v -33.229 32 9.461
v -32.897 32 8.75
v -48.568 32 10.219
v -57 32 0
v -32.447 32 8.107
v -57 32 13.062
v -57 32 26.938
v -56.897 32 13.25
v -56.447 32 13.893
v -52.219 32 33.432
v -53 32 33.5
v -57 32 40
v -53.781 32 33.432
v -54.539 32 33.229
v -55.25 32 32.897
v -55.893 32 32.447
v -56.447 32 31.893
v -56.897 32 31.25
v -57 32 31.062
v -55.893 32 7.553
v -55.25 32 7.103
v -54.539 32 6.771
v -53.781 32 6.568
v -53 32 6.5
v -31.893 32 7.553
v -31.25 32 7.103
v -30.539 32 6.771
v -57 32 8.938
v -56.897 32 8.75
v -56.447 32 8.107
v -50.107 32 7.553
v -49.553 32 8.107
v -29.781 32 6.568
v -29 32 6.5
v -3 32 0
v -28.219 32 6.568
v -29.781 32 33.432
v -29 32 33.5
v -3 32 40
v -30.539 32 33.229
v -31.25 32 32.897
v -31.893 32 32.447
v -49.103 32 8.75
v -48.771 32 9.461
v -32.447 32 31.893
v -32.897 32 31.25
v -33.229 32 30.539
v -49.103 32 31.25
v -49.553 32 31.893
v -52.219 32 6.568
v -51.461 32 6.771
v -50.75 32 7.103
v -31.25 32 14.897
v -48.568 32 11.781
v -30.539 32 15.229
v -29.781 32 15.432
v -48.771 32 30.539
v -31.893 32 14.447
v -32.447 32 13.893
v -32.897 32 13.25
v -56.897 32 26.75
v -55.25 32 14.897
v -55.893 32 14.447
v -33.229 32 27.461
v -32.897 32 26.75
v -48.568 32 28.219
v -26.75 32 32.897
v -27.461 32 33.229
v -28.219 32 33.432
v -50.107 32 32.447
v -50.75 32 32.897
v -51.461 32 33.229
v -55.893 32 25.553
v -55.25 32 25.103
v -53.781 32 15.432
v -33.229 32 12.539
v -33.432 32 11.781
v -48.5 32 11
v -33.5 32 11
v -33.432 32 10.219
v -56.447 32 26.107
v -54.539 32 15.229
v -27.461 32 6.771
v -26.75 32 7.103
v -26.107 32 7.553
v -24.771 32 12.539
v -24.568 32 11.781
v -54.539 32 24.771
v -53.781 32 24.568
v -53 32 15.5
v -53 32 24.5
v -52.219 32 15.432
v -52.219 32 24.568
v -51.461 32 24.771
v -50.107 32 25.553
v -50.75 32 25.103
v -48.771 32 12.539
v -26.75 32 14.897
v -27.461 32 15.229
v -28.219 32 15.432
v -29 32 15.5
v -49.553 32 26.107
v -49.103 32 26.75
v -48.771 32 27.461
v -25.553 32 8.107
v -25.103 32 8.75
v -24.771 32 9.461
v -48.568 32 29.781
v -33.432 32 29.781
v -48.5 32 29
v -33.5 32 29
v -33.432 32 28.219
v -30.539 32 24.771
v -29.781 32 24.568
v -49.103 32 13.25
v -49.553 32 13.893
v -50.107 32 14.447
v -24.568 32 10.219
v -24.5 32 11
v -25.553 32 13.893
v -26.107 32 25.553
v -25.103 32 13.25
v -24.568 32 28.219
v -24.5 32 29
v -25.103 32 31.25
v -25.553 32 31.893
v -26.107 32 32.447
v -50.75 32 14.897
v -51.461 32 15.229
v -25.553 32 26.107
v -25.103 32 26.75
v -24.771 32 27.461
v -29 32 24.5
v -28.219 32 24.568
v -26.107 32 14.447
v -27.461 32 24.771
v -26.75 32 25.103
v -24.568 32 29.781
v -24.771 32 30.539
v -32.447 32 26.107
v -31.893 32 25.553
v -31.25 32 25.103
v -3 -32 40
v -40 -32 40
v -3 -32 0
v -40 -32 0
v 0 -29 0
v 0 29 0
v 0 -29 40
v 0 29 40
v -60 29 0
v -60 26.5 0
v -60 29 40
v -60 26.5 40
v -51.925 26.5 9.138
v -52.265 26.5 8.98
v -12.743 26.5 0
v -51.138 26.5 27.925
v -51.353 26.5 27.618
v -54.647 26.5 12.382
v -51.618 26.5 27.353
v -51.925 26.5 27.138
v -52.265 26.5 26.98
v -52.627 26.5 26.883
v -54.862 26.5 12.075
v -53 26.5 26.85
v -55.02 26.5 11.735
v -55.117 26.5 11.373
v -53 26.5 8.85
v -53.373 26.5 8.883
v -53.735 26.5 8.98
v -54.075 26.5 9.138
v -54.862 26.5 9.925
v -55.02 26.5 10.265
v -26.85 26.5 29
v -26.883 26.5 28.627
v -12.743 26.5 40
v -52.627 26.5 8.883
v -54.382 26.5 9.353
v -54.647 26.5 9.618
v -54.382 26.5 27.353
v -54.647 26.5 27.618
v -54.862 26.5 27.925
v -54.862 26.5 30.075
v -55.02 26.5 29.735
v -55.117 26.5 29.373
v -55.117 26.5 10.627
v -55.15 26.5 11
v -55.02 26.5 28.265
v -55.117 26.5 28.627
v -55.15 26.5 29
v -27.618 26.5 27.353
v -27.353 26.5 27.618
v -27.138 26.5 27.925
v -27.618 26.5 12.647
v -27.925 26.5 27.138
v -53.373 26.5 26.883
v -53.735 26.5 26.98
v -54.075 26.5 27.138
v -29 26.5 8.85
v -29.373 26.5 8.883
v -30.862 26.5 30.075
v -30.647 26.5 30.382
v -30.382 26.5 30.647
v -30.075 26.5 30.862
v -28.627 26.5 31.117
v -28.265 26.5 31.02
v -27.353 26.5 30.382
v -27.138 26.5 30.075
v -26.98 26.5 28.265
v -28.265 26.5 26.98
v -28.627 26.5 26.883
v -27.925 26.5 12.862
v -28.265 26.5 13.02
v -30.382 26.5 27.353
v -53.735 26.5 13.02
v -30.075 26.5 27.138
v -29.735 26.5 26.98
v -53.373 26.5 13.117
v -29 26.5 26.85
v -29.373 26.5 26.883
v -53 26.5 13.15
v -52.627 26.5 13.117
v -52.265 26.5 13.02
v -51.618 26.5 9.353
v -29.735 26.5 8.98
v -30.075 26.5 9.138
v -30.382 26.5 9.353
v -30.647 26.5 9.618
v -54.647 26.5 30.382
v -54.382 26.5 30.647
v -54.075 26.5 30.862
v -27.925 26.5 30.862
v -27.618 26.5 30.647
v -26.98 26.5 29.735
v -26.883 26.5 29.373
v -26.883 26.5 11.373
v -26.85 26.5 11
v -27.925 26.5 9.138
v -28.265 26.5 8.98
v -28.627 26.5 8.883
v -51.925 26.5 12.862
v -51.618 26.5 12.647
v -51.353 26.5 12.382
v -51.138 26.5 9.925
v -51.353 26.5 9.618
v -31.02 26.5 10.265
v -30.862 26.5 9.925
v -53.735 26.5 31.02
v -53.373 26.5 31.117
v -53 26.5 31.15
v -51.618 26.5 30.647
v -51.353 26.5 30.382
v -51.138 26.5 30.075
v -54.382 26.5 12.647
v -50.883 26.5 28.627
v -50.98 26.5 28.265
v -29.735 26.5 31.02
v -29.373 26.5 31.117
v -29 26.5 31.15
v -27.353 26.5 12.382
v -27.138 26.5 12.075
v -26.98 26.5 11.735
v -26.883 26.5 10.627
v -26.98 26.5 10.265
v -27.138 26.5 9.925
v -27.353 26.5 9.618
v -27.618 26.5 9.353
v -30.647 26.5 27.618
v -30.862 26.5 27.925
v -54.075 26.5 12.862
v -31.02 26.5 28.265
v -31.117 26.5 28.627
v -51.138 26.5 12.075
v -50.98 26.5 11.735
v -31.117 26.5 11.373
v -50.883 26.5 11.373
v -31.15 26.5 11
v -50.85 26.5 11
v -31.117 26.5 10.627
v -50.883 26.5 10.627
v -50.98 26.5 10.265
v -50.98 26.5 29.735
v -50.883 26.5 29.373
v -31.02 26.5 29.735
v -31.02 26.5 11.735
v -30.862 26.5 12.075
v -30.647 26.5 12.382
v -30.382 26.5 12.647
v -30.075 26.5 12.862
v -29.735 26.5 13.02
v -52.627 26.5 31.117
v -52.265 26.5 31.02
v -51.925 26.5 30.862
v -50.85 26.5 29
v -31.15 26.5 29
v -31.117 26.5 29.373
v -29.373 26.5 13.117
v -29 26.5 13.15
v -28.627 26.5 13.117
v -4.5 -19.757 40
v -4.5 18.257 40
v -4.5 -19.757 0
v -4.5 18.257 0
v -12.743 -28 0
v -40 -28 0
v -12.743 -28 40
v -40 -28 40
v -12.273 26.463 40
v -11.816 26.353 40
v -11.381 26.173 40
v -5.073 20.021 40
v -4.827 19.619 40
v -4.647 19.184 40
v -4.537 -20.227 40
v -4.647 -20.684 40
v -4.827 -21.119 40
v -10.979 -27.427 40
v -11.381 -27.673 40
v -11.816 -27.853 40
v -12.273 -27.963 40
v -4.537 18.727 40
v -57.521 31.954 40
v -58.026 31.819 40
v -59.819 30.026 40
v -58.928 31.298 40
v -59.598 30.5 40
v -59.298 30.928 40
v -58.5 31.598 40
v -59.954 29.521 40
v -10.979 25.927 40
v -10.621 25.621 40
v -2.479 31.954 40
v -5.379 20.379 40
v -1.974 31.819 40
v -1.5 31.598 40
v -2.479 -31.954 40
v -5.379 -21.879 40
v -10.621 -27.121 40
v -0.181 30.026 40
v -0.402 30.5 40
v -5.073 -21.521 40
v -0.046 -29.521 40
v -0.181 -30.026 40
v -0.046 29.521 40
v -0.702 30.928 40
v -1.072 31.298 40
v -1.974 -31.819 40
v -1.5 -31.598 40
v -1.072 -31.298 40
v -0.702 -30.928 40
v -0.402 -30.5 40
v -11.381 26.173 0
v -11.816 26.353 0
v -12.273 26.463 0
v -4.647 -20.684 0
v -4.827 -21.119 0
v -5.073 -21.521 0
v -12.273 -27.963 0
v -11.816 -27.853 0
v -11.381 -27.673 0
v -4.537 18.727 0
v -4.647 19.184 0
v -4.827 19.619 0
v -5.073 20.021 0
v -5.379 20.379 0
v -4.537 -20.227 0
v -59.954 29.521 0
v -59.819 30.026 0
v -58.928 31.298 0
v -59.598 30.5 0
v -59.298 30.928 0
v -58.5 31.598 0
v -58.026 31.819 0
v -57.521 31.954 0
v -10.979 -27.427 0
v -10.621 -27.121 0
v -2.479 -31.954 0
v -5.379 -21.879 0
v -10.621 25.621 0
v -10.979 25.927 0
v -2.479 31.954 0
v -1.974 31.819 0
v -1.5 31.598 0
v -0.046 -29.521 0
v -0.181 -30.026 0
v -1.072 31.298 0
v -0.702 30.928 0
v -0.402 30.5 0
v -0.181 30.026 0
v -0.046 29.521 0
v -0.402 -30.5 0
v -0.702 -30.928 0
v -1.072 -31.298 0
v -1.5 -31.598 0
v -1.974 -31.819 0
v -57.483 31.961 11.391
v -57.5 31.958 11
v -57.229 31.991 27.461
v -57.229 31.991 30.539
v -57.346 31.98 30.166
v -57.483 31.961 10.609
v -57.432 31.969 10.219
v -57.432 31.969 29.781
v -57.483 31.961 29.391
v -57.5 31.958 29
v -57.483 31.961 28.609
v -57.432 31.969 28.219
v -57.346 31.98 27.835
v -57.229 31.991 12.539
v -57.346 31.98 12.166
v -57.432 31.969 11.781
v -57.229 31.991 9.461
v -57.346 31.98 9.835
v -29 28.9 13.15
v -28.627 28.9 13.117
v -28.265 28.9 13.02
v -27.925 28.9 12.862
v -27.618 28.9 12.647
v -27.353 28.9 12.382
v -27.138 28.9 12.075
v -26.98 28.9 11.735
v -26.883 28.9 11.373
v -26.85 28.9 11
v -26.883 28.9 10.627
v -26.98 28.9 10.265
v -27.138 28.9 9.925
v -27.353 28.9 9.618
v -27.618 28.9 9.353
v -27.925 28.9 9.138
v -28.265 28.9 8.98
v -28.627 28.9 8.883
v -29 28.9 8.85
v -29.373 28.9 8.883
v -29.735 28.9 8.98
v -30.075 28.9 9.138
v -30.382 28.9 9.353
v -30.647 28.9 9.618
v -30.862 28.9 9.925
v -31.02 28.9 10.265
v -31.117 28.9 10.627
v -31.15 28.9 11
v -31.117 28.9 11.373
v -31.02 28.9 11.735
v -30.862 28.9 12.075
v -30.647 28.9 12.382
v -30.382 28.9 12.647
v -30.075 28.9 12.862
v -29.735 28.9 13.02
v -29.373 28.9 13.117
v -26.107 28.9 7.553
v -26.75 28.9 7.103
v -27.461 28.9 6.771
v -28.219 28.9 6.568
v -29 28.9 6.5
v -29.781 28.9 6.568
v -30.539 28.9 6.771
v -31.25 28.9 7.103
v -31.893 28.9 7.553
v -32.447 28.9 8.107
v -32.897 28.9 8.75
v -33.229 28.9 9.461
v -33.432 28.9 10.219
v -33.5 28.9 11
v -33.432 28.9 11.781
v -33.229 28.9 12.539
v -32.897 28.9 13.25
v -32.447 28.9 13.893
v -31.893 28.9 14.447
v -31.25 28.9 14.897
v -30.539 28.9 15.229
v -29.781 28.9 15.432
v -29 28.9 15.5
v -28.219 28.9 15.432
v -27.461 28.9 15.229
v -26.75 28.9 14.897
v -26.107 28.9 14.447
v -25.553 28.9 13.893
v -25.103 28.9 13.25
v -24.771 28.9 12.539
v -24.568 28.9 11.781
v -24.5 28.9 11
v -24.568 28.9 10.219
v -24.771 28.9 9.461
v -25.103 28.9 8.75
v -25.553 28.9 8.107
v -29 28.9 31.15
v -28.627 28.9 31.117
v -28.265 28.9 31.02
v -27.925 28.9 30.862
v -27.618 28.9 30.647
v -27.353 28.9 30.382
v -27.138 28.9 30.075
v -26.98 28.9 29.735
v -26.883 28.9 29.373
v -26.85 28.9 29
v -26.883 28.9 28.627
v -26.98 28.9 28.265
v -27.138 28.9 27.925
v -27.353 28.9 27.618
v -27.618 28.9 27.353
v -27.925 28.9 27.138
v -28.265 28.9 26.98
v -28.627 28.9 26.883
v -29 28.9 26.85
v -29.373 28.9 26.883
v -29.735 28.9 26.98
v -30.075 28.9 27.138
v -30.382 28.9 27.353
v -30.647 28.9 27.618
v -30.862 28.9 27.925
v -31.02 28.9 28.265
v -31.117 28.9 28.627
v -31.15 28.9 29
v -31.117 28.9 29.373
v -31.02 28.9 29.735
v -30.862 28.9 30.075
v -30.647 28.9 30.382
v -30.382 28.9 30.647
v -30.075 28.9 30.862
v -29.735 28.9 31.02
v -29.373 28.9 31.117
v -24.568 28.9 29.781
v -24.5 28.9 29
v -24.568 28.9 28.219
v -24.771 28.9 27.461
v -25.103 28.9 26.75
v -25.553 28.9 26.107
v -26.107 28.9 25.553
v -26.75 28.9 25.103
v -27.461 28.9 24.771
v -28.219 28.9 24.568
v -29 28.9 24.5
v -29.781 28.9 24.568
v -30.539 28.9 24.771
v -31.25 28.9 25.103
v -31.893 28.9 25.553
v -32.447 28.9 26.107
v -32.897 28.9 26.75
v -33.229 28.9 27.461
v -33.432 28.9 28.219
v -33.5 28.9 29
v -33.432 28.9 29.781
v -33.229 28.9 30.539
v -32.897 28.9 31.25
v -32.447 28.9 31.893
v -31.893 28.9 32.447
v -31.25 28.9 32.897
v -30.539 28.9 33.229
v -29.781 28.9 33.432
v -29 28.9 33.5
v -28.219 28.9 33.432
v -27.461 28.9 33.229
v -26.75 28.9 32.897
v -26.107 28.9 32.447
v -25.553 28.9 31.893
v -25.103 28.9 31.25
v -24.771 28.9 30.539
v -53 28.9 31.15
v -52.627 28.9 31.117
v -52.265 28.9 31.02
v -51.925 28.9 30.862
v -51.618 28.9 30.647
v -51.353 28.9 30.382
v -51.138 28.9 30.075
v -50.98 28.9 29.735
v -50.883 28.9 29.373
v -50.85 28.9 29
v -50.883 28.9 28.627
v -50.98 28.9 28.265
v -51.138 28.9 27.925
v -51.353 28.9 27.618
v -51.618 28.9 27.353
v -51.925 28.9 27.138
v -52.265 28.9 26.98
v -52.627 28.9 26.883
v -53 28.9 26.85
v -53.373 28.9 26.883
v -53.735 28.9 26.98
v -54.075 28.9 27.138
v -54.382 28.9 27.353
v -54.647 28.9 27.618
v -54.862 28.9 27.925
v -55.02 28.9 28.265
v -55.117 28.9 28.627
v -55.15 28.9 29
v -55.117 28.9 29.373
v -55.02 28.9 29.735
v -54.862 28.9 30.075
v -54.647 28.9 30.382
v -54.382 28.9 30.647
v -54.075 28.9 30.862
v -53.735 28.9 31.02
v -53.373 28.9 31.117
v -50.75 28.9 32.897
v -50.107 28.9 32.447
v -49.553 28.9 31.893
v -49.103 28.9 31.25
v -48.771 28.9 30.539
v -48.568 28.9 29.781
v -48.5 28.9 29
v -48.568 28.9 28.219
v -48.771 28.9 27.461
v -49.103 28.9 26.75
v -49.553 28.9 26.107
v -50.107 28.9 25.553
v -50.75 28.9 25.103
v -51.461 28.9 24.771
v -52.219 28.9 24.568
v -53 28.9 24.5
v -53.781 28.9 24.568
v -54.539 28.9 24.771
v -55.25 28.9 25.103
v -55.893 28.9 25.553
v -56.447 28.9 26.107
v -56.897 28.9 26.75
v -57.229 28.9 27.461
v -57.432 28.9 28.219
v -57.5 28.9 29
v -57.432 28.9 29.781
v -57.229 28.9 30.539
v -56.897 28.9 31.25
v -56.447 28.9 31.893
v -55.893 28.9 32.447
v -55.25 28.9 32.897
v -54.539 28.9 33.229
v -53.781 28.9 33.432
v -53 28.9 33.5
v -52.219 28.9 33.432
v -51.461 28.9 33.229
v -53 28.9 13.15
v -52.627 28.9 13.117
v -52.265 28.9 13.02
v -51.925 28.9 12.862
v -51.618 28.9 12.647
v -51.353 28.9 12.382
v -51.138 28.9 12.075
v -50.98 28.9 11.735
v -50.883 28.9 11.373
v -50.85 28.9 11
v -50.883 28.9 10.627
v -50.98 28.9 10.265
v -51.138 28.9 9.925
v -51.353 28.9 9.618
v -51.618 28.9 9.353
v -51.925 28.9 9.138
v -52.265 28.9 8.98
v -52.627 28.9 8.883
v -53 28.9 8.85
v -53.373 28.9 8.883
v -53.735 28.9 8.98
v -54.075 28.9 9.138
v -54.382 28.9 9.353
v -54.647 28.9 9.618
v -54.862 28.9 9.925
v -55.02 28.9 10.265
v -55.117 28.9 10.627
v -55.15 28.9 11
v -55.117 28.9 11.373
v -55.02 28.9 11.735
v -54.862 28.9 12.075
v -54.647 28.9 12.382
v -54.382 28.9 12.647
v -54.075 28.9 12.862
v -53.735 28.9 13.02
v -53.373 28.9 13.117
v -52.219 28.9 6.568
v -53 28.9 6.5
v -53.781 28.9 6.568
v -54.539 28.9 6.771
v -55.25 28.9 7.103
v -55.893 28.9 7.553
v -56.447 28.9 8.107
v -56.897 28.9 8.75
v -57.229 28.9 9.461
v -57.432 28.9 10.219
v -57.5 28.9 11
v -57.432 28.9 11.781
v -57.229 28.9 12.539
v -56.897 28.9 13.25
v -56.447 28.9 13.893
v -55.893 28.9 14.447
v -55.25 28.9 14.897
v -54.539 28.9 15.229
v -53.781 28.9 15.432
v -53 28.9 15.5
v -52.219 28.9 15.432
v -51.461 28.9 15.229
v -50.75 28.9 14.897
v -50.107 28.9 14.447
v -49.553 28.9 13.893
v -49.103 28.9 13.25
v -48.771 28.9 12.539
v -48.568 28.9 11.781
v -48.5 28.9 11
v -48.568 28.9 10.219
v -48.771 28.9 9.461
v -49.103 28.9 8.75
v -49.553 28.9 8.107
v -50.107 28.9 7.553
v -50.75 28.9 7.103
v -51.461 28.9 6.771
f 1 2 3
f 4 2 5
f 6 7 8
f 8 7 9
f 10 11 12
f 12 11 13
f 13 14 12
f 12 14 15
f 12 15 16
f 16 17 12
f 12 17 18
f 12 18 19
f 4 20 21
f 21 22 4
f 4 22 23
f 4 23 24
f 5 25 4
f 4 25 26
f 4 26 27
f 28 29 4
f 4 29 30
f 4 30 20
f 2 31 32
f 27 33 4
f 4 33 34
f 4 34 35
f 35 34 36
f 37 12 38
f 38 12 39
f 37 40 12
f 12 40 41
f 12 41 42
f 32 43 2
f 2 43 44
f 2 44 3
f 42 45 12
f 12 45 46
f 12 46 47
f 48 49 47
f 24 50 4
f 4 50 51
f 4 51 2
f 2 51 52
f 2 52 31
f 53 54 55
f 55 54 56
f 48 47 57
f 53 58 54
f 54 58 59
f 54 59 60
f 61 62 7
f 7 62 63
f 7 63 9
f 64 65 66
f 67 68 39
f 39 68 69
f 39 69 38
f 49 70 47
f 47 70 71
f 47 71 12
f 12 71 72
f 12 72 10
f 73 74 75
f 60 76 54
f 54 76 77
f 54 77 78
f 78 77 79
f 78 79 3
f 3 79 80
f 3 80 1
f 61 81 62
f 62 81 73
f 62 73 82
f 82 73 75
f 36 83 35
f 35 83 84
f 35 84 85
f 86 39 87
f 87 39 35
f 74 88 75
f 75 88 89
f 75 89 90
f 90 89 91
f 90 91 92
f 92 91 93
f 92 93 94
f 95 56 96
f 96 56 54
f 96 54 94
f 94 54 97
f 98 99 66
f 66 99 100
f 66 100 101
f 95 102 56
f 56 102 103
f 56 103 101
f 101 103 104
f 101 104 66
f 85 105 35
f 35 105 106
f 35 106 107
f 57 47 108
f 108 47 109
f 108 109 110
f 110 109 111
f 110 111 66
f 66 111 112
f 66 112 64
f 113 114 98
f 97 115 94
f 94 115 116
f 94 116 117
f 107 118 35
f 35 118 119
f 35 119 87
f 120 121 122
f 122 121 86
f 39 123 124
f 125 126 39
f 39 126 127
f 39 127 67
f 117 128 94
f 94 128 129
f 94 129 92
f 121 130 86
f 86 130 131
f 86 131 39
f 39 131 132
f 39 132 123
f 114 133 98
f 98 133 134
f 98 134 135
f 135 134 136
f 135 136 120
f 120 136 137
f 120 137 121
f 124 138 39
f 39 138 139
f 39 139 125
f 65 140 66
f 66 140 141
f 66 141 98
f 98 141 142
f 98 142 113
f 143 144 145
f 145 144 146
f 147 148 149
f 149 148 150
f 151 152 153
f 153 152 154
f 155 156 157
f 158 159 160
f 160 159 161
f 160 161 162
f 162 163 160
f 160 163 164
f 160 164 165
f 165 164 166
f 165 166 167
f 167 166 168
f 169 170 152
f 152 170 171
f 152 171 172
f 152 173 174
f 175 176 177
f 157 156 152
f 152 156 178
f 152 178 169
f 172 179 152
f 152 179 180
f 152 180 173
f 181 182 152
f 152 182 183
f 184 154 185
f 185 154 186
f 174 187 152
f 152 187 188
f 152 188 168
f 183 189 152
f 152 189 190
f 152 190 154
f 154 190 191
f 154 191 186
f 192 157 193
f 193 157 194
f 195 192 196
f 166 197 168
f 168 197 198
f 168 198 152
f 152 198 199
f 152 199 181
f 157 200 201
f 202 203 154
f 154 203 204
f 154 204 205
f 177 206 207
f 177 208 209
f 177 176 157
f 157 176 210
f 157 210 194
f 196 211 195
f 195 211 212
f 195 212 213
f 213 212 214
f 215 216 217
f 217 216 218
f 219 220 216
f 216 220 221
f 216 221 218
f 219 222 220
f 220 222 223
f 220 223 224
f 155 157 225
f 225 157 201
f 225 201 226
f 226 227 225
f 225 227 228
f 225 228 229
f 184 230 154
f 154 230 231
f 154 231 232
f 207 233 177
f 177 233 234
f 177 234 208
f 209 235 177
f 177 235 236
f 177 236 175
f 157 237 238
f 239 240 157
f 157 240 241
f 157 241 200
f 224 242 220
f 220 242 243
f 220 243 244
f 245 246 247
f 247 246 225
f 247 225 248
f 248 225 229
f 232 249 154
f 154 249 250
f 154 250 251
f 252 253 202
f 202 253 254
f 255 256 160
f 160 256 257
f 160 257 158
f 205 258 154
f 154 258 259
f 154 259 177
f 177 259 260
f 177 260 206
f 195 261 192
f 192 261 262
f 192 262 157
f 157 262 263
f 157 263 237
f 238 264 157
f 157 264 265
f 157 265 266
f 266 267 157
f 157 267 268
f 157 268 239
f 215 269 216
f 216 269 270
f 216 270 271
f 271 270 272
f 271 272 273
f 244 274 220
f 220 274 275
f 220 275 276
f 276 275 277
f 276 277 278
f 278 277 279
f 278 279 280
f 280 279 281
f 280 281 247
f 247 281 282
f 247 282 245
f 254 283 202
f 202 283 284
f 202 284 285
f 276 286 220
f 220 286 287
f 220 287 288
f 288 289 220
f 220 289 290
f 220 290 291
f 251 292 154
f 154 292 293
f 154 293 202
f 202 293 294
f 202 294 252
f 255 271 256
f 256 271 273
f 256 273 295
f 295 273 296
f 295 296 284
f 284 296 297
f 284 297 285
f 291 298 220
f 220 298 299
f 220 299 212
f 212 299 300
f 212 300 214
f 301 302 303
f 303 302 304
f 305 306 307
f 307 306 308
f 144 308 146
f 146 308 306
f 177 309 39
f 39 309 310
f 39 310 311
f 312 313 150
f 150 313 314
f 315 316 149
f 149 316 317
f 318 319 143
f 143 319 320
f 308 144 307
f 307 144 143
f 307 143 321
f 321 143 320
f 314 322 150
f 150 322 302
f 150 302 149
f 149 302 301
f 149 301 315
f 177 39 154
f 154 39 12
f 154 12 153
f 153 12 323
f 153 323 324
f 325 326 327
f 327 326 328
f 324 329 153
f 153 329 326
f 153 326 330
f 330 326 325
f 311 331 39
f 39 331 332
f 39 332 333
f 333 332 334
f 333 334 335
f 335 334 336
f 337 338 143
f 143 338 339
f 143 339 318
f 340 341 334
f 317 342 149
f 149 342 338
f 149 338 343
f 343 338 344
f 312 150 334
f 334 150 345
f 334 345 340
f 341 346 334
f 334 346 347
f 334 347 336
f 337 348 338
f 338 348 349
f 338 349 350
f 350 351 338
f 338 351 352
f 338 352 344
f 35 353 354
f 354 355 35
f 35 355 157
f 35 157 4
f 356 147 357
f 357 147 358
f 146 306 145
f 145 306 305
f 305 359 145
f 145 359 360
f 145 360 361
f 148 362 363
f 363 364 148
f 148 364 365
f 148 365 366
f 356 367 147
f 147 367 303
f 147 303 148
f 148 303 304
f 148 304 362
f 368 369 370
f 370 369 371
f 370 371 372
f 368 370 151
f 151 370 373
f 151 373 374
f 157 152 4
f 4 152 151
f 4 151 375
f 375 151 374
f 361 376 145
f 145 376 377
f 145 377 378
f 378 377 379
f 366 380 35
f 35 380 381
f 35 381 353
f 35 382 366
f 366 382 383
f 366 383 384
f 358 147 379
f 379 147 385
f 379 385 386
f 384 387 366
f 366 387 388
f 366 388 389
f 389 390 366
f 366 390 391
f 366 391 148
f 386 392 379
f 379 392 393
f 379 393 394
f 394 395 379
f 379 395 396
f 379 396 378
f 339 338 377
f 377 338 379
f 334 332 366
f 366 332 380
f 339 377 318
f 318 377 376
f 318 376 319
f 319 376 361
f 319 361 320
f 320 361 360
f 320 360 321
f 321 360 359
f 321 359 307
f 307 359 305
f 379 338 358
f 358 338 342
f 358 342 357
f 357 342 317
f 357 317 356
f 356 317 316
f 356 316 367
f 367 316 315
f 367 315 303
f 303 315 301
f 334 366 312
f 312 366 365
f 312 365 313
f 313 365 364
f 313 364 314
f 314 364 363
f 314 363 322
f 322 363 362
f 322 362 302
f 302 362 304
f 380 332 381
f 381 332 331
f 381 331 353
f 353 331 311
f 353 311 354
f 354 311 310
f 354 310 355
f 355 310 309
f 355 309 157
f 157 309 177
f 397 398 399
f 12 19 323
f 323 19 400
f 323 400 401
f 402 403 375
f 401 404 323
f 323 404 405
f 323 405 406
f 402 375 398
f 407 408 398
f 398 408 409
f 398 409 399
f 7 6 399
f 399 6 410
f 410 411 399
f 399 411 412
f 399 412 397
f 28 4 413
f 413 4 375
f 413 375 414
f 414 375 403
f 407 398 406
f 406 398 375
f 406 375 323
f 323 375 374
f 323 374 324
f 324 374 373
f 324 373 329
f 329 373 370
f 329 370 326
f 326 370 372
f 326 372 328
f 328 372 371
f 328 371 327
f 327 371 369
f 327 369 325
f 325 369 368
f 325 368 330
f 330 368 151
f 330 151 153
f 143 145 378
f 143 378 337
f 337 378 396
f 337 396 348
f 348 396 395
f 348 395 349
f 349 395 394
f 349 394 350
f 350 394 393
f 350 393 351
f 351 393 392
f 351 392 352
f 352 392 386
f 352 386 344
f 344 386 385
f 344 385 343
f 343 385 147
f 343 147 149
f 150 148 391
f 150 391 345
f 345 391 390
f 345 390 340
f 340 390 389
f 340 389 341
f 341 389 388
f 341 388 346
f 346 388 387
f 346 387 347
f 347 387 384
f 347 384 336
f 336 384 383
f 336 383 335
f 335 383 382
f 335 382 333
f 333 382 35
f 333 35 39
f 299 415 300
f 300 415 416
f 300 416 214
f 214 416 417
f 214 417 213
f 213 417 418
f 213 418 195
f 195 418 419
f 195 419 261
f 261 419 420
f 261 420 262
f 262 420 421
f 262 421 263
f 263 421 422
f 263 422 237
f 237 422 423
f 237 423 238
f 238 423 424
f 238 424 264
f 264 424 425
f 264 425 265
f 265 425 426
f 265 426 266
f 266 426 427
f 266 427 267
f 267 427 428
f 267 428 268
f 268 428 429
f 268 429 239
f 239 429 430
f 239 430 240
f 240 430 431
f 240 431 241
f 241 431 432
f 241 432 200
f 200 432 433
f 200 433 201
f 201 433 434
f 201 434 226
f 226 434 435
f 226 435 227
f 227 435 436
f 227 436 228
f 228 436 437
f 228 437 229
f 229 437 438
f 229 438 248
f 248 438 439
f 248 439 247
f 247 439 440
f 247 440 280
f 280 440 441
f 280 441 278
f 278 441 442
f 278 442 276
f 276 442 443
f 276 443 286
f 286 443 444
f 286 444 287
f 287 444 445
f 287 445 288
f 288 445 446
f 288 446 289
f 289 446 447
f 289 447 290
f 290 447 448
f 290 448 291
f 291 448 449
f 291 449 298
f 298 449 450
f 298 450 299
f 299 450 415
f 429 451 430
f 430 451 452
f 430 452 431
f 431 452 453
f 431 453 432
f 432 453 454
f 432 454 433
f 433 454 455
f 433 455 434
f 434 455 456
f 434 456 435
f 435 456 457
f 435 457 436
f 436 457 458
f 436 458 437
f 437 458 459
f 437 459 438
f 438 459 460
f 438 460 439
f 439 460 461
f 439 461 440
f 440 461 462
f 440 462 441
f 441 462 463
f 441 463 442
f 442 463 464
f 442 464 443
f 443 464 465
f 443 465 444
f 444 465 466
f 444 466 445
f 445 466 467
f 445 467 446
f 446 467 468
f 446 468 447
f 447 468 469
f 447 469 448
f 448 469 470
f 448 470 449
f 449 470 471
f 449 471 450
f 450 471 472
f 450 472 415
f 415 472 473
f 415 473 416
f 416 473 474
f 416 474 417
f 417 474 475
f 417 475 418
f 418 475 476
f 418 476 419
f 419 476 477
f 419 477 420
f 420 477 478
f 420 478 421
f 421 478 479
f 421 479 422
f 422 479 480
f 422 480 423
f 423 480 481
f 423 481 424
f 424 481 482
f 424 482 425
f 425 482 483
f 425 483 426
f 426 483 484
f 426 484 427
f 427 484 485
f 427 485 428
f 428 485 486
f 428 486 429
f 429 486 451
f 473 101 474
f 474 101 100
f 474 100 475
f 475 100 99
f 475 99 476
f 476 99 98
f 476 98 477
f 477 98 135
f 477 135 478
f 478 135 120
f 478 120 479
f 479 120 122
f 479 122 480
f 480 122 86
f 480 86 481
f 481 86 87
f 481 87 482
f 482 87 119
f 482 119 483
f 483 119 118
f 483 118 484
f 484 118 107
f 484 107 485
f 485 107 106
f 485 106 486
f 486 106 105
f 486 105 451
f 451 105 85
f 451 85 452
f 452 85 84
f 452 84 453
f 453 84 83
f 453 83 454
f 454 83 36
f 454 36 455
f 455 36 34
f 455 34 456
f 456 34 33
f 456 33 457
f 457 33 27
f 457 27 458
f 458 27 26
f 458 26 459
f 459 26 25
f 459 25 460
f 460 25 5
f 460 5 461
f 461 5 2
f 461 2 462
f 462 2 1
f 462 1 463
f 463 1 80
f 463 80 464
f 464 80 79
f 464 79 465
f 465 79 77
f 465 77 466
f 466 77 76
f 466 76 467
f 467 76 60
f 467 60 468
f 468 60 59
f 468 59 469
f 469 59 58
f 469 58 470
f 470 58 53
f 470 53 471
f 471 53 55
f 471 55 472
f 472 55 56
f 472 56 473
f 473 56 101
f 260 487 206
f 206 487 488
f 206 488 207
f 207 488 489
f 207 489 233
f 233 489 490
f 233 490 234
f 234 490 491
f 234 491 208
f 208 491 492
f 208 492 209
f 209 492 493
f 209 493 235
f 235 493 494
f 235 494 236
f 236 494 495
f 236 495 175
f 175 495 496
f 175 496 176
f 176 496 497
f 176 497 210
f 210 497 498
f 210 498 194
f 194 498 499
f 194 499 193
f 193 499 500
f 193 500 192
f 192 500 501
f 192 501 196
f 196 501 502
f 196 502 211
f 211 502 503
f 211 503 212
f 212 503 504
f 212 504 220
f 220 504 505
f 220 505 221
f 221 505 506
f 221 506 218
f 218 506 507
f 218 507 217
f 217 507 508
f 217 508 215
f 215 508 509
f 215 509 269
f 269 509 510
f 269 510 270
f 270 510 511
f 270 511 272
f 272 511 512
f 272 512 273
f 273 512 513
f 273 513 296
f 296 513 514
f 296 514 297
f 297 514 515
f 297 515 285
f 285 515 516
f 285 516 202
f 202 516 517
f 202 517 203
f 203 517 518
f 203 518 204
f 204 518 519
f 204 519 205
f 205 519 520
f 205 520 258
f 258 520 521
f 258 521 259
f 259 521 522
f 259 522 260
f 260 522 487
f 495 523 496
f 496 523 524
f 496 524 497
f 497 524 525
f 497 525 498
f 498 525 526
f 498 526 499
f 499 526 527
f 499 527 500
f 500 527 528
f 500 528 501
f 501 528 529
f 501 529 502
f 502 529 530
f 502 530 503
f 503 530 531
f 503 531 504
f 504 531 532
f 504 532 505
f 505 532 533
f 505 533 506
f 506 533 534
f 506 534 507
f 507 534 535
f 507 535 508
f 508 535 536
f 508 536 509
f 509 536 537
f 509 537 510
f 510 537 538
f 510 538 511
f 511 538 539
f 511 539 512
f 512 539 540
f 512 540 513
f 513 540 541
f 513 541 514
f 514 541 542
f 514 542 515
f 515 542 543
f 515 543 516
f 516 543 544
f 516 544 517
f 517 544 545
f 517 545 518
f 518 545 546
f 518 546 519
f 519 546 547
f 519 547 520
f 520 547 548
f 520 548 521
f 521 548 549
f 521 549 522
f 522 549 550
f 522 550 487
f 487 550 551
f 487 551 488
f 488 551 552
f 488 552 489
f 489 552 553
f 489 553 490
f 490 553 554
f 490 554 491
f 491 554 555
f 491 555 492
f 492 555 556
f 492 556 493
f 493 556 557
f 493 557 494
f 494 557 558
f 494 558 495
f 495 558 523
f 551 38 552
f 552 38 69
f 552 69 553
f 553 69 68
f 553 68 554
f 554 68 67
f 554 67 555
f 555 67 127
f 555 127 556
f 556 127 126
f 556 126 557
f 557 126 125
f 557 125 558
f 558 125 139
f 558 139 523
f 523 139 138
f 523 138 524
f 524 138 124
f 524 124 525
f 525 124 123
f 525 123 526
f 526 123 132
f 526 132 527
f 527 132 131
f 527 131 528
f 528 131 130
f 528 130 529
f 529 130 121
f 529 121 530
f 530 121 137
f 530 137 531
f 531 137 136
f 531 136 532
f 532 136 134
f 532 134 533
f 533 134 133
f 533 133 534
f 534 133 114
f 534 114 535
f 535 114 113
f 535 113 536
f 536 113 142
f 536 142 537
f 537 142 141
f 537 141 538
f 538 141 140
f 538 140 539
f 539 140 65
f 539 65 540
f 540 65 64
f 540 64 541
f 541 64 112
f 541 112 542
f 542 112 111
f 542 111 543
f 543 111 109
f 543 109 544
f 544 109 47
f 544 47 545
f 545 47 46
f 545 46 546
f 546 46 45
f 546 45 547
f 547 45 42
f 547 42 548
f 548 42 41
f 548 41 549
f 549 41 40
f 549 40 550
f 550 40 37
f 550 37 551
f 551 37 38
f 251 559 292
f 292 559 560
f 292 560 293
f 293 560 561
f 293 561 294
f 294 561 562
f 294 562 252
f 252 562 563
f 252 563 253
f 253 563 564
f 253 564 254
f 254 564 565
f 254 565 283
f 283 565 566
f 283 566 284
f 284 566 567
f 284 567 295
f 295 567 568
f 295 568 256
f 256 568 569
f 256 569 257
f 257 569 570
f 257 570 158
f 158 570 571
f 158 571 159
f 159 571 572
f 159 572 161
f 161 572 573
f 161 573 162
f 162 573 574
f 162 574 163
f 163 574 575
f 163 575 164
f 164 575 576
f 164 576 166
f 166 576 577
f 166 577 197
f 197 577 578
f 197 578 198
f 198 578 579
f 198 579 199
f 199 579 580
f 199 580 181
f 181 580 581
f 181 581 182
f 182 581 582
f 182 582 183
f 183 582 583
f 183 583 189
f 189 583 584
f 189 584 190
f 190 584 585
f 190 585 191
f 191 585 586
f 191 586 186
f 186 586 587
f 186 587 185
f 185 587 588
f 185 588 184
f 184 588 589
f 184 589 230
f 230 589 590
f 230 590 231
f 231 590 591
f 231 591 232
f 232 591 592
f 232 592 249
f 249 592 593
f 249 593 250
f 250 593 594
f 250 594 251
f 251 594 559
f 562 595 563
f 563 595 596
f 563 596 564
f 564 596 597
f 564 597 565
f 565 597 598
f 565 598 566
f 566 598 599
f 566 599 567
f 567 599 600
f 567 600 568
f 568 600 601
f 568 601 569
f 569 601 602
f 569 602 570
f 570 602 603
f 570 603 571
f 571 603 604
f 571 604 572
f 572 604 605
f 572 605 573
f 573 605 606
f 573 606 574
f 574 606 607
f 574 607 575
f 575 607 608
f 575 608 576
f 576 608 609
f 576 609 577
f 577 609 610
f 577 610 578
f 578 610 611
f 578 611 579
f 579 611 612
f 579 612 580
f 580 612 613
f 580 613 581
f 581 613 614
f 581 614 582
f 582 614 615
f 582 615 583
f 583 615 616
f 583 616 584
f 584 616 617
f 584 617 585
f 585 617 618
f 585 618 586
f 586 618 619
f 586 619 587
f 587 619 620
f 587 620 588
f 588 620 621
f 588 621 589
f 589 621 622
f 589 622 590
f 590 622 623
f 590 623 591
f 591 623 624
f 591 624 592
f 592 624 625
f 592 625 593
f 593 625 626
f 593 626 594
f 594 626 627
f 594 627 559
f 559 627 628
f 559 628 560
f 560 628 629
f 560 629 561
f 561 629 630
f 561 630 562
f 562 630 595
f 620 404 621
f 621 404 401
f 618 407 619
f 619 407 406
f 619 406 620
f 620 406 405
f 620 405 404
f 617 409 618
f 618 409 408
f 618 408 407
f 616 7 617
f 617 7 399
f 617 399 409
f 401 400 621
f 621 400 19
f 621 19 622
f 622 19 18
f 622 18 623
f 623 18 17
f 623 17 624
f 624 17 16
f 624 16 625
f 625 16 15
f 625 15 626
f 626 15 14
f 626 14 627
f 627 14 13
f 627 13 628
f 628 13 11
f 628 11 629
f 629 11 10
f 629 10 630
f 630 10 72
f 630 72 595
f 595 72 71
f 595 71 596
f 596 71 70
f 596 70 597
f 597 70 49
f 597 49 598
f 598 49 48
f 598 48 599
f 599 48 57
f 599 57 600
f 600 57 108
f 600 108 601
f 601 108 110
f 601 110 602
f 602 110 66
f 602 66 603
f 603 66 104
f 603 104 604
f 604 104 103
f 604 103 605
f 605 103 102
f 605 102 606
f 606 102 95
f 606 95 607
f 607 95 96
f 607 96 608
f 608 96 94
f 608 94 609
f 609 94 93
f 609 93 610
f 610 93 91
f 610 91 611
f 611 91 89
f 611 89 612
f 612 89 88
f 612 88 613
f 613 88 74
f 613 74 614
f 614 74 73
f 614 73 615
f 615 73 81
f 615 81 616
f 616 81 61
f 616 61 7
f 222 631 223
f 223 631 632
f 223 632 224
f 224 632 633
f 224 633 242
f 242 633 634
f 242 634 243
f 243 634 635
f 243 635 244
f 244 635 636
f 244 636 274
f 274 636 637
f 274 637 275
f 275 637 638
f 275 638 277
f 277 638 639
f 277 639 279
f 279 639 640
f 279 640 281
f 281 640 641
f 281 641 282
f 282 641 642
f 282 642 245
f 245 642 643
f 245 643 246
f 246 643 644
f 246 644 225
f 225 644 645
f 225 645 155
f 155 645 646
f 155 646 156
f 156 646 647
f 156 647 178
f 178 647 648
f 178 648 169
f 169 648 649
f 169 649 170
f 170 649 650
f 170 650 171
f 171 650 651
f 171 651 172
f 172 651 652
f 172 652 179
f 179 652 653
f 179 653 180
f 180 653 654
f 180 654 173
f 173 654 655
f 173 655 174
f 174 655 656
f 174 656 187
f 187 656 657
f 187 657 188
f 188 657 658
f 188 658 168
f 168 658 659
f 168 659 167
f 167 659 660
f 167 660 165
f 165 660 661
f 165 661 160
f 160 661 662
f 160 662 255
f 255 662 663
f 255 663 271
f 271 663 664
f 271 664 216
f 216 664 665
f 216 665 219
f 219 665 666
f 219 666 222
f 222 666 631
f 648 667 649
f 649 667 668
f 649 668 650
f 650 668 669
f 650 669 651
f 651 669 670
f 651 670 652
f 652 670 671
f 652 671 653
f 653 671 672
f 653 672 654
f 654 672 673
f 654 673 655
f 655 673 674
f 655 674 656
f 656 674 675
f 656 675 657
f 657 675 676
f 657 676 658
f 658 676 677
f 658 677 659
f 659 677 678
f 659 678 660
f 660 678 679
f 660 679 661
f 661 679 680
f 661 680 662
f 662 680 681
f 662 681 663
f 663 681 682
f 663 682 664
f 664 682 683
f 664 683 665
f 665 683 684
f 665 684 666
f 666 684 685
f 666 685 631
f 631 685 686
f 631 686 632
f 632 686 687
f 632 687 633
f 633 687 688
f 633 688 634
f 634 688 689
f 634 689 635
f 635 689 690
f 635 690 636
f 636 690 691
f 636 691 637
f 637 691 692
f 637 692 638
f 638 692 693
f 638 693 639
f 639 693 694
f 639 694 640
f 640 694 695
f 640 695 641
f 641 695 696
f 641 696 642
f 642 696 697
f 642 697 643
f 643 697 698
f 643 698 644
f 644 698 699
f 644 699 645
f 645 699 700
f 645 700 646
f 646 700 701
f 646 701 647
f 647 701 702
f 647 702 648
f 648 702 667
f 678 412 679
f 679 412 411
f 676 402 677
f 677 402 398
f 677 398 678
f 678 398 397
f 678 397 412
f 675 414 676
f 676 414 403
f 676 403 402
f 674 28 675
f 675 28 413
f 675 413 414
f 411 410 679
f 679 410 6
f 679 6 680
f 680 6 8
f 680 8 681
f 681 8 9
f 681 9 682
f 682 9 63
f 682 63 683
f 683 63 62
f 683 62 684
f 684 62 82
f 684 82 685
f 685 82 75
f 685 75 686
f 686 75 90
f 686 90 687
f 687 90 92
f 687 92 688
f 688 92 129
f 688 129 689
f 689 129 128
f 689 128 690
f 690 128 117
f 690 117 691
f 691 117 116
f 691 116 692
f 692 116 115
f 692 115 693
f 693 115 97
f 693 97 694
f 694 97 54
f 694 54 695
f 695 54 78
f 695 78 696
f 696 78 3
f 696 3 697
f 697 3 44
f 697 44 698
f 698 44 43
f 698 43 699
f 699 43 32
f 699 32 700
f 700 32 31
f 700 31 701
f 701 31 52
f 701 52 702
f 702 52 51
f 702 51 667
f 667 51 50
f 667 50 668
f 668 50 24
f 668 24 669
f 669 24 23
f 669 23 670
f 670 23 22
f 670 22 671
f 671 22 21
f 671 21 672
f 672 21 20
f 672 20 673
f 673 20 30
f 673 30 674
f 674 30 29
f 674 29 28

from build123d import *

# Parameters (mm, degrees)
BOSS_EXTRUDE1_DEPTH                              = 40
CHAMFER1_SIZE                                    = 7
FILLET1_R                                        = 3
CBORE_FOR_M4_PAN_HEAD_MACHINE_SCREW1_D           = 4.3
CBORE_FOR_M4_PAN_HEAD_MACHINE_SCREW1_DEPTH       = 5.5
CBORE_FOR_M4_PAN_HEAD_MACHINE_SCREW1_CBORE_D     = 9
CBORE_FOR_M4_PAN_HEAD_MACHINE_SCREW1_CBORE_DEPTH = 3.1


with BuildPart() as part:
    # Sketch1 → Boss-Extrude1 (new body)
    with BuildSketch(Plane.XY):
        Polygon((0, 32), (0, -32), (-40, -32), (-40, -28), (-4.5, -28), (-4.5, 26.5), (-60, 26.5), (-60, 32), align=None)
    extrude(amount=BOSS_EXTRUDE1_DEPTH)

    # Chamfer1
    chamfer1_edges = [part.edges().sort_by_distance(p)[0] for p in [
        (-4.5, -28, 20),
        (-4.5, 26.5, 20),
    ]]
    chamfer(chamfer1_edges, length=CHAMFER1_SIZE)

    # Fillet1
    fillet1_edges = [part.edges().sort_by_distance(p)[0] for p in [
        (-60, 32, 20),
        (0, 32, 20),
        (0, -32, 20),
        (-11.5, -28, 20),
        (-4.5, 19.5, 20),
        (-4.5, -21, 20),
        (-11.5, 26.5, 20),
    ]]
    fillet(fillet1_edges, radius=FILLET1_R)

    # CBORE for M4 Pan Head Machine Screw1
    with Locations(Plane(origin=(0, 32, 0), x_dir=(1, 0, 0), z_dir=(0, 1, 0))):
        with Locations((-53, -11), (-53, -29), (-29, -29), (-29, -11)):
            CounterBoreHole(CBORE_FOR_M4_PAN_HEAD_MACHINE_SCREW1_D / 2, CBORE_FOR_M4_PAN_HEAD_MACHINE_SCREW1_CBORE_D / 2, CBORE_FOR_M4_PAN_HEAD_MACHINE_SCREW1_CBORE_DEPTH, depth=CBORE_FOR_M4_PAN_HEAD_MACHINE_SCREW1_DEPTH)


solid = part.part
